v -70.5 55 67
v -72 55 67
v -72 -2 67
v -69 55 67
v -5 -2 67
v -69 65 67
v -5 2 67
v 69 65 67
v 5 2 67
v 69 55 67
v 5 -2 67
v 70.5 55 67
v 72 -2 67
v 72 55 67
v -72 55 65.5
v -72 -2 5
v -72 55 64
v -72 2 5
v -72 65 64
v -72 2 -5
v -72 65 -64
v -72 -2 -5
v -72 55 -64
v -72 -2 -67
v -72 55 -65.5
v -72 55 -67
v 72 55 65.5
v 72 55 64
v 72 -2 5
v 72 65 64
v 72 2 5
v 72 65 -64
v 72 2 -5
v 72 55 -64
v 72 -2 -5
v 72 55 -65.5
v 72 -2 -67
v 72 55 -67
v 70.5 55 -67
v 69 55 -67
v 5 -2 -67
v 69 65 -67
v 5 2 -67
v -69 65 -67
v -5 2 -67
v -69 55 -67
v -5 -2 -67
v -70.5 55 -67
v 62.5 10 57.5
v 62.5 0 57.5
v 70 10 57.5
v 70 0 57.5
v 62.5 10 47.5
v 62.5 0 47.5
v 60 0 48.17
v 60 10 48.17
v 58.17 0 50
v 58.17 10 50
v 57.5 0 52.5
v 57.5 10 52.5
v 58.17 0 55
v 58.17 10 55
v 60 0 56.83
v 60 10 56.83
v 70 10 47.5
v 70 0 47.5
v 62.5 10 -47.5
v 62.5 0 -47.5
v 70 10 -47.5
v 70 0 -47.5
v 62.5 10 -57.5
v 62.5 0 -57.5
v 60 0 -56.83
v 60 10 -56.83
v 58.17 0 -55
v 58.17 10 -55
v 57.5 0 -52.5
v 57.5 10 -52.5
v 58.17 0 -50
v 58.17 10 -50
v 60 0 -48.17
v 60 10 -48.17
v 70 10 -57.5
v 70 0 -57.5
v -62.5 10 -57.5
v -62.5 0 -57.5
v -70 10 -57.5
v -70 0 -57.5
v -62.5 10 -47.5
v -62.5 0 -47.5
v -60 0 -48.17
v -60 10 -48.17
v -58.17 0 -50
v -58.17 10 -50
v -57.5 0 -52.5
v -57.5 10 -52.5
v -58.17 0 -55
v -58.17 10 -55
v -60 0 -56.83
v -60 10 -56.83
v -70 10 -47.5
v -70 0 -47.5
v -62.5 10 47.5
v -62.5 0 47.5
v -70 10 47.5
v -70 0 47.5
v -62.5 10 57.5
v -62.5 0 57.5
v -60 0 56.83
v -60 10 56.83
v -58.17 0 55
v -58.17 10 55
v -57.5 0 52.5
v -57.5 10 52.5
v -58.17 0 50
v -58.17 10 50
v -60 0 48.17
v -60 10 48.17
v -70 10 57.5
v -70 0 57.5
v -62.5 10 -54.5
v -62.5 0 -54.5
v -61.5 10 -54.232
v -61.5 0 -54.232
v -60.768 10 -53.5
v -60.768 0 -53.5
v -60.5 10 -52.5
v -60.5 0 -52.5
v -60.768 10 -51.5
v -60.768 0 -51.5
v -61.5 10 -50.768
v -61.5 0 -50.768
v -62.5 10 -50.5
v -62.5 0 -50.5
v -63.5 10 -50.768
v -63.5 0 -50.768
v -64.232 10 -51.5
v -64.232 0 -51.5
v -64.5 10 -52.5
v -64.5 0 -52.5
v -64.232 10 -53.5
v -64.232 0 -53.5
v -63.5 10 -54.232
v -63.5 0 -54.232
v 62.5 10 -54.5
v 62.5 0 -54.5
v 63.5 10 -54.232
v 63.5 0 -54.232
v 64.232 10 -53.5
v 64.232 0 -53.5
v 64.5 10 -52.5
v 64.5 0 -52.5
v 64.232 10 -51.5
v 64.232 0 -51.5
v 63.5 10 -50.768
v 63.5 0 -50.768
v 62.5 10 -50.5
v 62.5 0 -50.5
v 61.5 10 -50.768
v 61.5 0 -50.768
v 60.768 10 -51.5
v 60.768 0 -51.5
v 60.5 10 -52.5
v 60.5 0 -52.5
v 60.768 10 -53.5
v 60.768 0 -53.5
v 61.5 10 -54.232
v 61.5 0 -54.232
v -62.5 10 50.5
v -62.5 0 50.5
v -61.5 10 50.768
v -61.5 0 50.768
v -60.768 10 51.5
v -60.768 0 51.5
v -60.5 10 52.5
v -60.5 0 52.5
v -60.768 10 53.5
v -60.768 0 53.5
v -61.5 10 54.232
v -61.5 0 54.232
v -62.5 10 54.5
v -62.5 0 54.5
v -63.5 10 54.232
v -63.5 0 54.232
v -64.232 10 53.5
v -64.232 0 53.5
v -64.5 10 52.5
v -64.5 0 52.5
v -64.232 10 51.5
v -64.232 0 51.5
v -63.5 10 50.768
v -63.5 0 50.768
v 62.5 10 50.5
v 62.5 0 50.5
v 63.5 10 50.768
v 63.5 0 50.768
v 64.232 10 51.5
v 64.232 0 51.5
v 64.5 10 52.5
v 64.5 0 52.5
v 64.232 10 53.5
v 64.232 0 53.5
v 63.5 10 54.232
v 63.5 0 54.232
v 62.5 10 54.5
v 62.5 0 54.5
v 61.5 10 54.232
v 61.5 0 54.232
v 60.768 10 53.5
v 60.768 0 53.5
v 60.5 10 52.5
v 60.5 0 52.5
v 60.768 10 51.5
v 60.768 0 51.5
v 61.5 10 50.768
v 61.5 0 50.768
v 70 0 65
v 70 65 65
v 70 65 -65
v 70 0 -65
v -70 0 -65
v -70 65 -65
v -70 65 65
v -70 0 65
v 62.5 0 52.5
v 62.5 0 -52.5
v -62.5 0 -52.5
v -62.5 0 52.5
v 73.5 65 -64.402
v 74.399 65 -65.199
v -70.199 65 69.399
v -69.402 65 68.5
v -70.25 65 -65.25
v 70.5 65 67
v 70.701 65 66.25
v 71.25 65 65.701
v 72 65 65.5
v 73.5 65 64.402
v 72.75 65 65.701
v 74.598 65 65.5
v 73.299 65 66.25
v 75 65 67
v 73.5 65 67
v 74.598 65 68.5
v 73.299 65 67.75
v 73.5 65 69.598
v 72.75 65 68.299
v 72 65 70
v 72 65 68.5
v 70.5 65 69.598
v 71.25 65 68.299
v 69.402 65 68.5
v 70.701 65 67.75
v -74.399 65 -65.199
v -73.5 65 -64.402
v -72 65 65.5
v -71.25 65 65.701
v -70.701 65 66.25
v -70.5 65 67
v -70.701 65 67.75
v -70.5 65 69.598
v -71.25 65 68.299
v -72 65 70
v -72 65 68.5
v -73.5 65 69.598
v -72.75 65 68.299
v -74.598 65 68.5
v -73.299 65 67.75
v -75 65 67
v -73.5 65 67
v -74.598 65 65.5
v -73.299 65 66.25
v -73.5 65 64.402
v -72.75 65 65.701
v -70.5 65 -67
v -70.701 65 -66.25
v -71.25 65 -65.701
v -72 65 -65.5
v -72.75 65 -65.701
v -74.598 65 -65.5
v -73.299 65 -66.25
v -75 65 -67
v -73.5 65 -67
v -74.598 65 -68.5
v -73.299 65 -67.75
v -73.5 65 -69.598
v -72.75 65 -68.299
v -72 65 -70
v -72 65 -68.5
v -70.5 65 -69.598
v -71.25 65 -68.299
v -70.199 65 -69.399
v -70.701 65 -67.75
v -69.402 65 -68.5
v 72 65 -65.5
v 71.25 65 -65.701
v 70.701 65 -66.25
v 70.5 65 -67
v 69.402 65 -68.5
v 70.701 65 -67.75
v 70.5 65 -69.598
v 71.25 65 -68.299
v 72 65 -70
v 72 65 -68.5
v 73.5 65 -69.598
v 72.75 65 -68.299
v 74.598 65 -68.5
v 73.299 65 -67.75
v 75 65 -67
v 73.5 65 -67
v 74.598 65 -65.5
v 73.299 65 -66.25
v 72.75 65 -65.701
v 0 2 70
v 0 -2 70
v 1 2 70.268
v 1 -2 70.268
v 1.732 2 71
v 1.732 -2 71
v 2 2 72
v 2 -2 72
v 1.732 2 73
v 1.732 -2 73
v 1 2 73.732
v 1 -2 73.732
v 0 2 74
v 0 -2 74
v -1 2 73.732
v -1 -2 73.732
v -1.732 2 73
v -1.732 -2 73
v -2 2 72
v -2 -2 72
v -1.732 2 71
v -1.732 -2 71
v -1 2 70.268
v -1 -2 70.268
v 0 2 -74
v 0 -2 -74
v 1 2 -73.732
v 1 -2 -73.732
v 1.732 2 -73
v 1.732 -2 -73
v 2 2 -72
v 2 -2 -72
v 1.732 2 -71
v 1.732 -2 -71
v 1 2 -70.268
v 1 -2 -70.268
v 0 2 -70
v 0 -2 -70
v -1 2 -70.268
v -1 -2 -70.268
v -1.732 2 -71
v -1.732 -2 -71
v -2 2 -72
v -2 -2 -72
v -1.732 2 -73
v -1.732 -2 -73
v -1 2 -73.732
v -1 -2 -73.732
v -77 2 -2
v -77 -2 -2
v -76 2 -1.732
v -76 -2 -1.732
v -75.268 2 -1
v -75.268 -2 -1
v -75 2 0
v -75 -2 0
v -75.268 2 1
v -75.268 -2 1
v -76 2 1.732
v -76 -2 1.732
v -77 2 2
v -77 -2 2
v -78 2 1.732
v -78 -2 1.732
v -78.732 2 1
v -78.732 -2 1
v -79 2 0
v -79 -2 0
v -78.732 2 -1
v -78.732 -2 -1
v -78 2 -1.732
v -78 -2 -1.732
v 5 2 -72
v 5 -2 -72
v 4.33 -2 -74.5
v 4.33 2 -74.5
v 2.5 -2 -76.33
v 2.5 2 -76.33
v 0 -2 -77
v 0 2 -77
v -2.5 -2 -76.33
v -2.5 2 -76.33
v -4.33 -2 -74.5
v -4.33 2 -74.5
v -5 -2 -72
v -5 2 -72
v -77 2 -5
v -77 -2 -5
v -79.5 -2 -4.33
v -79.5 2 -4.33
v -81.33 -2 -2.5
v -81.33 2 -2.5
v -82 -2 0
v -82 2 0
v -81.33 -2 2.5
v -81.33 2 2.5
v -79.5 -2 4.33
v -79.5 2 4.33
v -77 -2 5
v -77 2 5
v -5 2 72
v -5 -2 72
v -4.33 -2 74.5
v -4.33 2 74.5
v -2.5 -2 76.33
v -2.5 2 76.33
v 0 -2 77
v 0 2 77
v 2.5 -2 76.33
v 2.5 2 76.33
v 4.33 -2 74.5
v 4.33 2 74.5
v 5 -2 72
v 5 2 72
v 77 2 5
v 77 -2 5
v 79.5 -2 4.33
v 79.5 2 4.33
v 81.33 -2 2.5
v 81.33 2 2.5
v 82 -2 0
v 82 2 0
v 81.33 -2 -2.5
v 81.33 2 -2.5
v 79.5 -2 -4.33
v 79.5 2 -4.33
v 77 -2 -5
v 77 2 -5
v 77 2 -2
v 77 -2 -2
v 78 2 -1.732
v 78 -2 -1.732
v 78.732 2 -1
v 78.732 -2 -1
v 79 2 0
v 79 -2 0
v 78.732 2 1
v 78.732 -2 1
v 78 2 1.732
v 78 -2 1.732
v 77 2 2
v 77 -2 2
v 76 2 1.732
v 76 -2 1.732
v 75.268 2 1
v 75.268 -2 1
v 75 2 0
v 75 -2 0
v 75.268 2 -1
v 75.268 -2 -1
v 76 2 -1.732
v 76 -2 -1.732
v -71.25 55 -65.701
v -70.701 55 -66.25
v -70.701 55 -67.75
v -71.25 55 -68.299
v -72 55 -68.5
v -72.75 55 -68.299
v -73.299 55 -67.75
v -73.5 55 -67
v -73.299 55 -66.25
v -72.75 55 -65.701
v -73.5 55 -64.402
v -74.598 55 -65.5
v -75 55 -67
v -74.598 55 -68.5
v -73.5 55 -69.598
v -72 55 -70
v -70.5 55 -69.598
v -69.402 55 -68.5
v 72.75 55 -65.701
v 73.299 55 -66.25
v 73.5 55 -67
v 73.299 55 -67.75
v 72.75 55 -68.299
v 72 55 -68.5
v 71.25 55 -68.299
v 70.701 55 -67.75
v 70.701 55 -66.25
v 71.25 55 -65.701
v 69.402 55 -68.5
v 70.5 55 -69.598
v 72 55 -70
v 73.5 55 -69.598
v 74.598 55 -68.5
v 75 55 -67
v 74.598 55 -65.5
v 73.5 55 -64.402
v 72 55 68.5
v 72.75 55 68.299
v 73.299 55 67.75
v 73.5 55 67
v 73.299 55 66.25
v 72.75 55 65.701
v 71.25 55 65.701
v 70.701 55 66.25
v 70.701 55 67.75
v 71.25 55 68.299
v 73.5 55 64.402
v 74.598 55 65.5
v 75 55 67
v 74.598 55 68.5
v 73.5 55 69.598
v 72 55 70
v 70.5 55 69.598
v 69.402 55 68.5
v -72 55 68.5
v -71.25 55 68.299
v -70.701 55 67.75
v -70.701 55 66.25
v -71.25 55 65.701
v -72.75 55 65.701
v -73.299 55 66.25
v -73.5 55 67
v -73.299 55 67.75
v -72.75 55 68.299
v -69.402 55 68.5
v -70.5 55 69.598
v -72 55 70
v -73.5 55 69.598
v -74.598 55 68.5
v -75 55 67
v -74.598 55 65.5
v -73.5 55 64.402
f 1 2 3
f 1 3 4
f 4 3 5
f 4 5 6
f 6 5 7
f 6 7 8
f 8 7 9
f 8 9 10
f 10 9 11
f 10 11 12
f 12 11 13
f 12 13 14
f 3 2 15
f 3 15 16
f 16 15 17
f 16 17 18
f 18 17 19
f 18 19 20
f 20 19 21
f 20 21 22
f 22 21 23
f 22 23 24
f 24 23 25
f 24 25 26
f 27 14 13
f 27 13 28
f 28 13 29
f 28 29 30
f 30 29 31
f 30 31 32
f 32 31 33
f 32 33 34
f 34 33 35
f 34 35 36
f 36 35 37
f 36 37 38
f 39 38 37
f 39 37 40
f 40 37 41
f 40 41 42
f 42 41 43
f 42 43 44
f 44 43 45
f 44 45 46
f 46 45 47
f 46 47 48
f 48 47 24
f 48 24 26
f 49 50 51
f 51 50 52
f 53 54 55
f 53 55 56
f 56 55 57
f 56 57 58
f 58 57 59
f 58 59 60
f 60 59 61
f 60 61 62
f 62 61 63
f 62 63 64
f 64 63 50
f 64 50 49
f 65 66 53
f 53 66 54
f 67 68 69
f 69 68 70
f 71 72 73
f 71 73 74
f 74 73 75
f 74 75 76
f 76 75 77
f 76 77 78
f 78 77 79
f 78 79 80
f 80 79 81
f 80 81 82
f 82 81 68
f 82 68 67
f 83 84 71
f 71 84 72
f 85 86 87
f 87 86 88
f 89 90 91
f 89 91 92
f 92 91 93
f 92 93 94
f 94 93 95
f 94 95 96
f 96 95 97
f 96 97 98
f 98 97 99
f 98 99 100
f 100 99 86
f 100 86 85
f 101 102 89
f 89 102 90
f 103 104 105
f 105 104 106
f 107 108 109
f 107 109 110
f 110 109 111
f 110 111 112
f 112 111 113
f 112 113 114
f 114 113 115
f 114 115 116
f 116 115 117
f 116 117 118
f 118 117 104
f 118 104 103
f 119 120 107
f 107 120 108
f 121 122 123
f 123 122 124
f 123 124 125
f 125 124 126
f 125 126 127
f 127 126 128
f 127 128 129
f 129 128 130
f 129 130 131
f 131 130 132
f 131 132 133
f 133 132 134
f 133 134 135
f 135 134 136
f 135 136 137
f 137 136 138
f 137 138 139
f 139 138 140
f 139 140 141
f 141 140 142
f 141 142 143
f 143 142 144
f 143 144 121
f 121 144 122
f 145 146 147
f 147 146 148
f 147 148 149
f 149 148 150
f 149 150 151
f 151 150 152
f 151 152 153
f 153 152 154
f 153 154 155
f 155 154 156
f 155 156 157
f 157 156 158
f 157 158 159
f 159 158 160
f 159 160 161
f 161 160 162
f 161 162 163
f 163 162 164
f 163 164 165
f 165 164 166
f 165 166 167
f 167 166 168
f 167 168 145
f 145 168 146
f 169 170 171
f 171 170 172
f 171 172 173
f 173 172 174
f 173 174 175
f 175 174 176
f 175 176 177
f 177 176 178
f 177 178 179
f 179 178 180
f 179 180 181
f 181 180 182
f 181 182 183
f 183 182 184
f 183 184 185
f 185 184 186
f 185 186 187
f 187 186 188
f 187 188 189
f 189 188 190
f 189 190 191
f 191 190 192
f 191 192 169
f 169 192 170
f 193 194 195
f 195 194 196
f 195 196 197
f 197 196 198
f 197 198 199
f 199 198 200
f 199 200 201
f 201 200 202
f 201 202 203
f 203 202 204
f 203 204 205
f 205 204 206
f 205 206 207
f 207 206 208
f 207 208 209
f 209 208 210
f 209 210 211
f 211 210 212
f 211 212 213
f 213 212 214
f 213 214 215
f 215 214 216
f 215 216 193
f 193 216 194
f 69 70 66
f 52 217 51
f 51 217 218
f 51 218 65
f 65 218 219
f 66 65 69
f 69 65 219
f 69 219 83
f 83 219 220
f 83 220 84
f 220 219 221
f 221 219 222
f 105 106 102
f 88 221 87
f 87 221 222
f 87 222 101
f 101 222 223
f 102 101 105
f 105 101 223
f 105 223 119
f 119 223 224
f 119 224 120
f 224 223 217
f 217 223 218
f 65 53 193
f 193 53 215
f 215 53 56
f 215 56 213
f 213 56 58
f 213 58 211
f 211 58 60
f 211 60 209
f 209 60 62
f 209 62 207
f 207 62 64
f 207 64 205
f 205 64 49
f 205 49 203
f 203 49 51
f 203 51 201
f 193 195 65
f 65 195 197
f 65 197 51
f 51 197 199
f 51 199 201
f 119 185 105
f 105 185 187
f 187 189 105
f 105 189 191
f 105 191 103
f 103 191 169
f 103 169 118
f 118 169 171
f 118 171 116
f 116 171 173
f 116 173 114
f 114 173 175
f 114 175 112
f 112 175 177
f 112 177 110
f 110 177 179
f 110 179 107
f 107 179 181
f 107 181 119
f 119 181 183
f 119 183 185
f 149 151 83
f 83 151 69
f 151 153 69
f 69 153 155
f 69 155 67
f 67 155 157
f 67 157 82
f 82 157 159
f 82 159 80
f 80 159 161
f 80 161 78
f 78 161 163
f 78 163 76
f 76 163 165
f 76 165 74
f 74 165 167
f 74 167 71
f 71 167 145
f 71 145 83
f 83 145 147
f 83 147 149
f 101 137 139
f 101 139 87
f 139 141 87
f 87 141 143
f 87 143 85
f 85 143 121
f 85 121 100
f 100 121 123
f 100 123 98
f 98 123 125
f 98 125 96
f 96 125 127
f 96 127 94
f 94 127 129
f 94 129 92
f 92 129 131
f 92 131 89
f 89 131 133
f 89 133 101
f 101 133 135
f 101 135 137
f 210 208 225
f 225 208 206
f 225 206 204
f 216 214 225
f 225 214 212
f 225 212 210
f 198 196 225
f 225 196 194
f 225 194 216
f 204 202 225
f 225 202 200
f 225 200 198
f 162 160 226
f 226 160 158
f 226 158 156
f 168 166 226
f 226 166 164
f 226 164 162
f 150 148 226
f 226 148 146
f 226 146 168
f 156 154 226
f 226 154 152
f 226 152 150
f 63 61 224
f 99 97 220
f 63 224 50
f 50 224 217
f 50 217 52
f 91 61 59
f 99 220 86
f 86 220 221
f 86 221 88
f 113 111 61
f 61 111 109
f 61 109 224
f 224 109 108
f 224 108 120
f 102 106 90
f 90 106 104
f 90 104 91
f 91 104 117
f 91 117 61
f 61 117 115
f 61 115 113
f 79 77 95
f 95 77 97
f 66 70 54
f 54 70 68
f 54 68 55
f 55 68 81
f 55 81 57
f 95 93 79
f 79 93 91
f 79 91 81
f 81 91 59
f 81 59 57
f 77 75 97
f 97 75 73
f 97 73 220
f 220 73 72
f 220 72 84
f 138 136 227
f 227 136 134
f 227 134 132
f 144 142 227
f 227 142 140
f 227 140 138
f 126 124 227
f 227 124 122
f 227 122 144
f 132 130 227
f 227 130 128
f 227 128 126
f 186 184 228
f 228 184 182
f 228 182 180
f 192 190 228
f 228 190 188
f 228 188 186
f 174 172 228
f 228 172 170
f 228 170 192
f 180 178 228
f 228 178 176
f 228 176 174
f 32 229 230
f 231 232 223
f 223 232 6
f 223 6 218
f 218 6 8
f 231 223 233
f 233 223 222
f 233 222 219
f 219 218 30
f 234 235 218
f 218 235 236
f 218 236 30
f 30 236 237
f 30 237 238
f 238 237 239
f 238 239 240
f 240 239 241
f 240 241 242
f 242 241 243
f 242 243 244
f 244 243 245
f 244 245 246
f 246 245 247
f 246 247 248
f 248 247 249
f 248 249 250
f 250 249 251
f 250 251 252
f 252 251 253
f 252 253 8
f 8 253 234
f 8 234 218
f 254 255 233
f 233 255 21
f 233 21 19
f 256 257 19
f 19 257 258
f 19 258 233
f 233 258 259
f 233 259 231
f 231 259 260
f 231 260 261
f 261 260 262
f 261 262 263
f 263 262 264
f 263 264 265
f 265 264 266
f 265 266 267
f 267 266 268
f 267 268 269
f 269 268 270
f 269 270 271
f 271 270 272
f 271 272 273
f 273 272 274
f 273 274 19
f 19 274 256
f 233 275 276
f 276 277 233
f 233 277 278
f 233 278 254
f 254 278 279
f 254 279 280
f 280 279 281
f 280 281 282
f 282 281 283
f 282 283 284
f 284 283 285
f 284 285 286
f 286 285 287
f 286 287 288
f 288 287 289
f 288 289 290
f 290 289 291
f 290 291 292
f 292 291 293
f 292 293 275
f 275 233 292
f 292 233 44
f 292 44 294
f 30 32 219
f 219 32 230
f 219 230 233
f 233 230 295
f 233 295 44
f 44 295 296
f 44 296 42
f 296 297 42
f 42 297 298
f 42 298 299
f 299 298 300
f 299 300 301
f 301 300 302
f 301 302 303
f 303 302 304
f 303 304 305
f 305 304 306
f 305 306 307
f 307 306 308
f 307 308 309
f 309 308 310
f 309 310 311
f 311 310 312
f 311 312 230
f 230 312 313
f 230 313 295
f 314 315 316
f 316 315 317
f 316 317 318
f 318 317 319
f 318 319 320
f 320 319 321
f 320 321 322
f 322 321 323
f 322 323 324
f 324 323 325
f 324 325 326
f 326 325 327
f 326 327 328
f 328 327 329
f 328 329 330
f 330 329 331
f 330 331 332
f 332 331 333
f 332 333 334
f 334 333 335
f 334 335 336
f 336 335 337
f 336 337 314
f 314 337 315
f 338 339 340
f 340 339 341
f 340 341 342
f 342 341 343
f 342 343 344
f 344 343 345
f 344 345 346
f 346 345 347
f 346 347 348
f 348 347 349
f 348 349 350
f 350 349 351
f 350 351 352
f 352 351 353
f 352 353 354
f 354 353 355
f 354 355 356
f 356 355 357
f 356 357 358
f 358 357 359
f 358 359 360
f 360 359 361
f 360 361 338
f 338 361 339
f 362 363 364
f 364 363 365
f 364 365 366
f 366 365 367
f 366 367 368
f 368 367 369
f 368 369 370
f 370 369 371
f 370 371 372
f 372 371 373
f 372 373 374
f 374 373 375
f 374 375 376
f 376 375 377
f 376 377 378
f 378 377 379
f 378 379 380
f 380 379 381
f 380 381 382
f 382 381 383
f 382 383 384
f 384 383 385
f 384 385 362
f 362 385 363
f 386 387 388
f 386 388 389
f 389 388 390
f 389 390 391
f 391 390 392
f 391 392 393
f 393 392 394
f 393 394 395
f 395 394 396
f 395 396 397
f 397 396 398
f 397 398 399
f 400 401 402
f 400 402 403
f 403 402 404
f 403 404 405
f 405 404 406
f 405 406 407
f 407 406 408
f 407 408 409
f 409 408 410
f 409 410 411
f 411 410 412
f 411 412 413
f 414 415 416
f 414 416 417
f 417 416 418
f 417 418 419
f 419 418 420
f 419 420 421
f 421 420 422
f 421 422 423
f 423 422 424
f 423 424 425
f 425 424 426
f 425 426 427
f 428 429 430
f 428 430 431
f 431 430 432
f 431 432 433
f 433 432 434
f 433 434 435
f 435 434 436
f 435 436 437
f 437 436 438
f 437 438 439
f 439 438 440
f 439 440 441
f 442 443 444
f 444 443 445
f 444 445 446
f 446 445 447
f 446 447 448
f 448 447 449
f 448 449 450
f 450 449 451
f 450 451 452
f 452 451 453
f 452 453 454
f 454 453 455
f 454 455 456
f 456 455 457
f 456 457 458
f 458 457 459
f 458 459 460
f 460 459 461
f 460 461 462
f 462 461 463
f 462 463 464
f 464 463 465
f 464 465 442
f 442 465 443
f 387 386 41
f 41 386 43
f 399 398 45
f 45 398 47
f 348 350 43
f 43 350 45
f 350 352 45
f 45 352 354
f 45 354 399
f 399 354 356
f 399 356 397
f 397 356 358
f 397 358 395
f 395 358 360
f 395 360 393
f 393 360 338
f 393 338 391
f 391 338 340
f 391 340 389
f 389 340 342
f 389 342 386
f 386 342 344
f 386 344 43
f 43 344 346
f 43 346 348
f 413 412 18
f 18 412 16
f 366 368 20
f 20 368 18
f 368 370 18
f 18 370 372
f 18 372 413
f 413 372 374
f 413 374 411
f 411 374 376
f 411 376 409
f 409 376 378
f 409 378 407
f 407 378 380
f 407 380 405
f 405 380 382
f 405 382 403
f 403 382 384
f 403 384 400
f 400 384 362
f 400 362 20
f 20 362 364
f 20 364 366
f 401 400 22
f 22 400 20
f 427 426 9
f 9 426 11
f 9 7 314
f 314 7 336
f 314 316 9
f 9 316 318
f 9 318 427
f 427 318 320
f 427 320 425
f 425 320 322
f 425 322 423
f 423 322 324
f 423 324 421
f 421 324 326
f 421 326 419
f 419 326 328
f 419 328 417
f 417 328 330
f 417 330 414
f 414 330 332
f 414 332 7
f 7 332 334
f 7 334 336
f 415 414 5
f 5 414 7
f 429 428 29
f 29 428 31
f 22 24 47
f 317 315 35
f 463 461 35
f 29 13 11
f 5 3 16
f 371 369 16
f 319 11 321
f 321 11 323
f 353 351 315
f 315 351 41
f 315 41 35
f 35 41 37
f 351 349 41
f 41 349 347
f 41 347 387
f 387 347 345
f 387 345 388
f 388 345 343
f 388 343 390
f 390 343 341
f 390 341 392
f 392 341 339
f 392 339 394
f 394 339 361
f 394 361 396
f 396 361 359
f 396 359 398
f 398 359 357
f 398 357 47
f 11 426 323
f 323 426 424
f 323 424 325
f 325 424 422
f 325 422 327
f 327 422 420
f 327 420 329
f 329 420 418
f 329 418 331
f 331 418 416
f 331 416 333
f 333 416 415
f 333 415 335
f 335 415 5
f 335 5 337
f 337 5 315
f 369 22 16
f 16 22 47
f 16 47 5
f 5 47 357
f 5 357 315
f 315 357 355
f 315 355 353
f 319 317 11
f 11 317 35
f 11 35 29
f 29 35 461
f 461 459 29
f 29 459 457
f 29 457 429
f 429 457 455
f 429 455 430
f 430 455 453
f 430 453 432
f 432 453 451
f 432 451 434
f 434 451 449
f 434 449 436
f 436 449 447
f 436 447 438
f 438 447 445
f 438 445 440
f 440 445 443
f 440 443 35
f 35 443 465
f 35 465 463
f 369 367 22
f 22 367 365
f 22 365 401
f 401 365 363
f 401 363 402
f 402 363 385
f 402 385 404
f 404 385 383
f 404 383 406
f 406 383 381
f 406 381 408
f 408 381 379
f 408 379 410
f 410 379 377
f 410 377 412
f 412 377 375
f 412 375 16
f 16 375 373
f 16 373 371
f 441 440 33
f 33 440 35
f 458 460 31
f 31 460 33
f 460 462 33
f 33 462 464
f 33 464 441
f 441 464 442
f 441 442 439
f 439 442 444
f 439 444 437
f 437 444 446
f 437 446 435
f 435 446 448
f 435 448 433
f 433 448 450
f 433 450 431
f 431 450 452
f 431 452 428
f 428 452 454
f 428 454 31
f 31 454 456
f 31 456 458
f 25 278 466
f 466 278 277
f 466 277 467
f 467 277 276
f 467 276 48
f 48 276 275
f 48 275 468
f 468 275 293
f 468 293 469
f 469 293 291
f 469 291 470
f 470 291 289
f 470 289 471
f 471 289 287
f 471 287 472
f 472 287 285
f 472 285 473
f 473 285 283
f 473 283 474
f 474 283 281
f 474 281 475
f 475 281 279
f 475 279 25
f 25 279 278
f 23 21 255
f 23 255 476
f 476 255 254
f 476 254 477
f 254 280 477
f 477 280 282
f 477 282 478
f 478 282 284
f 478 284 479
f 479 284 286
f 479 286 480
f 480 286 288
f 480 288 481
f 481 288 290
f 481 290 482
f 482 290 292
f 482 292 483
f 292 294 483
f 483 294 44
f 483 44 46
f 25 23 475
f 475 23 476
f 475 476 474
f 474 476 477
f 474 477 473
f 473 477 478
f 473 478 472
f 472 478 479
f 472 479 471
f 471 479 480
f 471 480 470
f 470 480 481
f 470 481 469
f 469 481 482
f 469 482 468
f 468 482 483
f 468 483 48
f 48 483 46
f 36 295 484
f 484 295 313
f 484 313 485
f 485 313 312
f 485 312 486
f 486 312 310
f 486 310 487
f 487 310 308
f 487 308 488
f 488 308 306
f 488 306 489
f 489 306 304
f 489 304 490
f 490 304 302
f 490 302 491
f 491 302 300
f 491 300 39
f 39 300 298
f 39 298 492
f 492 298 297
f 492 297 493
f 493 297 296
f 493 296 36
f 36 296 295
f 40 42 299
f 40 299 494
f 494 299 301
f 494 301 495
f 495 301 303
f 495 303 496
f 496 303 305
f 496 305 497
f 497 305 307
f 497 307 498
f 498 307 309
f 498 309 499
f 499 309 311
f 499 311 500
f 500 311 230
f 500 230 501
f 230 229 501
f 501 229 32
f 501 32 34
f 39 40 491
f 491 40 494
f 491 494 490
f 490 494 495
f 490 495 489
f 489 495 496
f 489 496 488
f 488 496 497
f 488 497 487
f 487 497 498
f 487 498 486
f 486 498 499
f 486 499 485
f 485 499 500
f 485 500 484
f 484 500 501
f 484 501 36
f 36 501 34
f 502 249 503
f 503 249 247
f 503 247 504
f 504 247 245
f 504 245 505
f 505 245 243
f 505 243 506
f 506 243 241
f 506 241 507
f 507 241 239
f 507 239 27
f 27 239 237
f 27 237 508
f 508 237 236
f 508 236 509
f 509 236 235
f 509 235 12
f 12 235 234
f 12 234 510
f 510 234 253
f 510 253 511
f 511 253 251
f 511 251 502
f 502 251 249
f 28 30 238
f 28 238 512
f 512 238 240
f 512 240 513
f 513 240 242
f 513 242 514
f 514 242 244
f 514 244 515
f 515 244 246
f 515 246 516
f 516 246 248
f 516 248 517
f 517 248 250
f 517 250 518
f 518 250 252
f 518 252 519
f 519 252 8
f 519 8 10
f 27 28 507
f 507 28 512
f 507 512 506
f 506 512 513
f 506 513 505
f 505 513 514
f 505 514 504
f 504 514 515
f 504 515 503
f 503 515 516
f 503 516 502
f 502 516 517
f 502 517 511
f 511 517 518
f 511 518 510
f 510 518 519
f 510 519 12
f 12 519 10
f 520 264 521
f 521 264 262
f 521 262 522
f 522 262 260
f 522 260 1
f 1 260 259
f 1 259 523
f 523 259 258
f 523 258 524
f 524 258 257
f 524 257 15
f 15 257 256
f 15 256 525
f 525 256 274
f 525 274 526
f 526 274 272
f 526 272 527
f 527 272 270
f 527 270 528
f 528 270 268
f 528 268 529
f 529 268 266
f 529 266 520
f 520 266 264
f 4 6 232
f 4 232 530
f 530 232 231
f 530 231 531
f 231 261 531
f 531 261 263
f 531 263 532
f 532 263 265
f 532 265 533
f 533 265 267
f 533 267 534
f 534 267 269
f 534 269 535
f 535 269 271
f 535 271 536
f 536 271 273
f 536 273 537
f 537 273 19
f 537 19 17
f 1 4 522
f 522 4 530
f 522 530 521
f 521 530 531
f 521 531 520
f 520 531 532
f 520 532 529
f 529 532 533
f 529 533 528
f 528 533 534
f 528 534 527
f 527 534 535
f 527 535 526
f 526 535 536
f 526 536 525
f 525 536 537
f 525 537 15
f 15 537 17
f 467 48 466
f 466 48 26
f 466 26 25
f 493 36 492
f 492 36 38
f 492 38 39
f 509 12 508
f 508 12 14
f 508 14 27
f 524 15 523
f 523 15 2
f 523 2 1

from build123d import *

# Parameters (mm, degrees)
SKETCH1_W            = 144
SKETCH1_H            = 134
SKETCH1_R            = 2
BOSS_EXTRUDE1_DEPTH  = 55
SKETCH2_R            = 2
CUT_EXTRUDE1_DEPTH   = 45
SKETCH3_W            = 144
SKETCH3_H            = 134
BOSS_EXTRUDE2_DEPTH  = 2
SKETCH5_R            = 2
BOSS_EXTRUDE4_DEPTH  = 4
SKETCH6_W            = 144
SKETCH6_H            = 134
SKETCH6_W_2          = 140
SKETCH6_H_2          = 130
BOSS_EXTRUDE5_DEPTH  = 10
BOSS_EXTRUDE11_DEPTH = 10
SKETCH12_R           = 1.5
CUT_EXTRUDE3_DEPTH   = 10


with BuildPart() as part:
    # Sketch1 → Boss-Extrude1 (new body)
    with BuildSketch(Plane(origin=(0, 0, 0), x_dir=(1, 0, 0), z_dir=(0, 1, 0))):
        Rectangle(SKETCH1_W, SKETCH1_H)
        with Locations((-62.5, 52.5)):
            Circle(SKETCH1_R, mode=Mode.SUBTRACT)
        with Locations((62.5, 52.5)):
            Circle(SKETCH1_R, mode=Mode.SUBTRACT)
        with Locations((-62.5, -52.5)):
            Circle(SKETCH1_R, mode=Mode.SUBTRACT)
        with Locations((62.5, -52.5)):
            Circle(SKETCH1_R, mode=Mode.SUBTRACT)
        with BuildLine():
            Line((-70, 65), (70, 65))
            Line((70, 65), (70, 57.5))
            Line((70, 57.5), (62.5, 57.5))
            ThreePointArc((62.5, 57.5), (57.5, 52.5), (62.5, 47.5))
            Line((62.5, 47.5), (70, 47.5))
            Line((70, 47.5), (70, -47.5))
            Line((70, -47.5), (62.5, -47.5))
            ThreePointArc((62.5, -47.5), (57.5, -52.5), (62.5, -57.5))
            Line((62.5, -57.5), (70, -57.5))
            Line((70, -57.5), (70, -65))
            Line((70, -65), (-70, -65))
            Line((-70, -65), (-70, -57.5))
            Line((-70, -57.5), (-62.5, -57.5))
            ThreePointArc((-62.5, -57.5), (-57.5, -52.5), (-62.5, -47.5))
            Line((-62.5, -47.5), (-70, -47.5))
            Line((-70, -47.5), (-70, 47.5))
            Line((-70, 47.5), (-62.5, 47.5))
            ThreePointArc((-62.5, 47.5), (-57.5, 52.5), (-62.5, 57.5))
            Line((-62.5, 57.5), (-70, 57.5))
            Line((-70, 57.5), (-70, 65))
        make_face(mode=Mode.SUBTRACT)
    extrude(amount=BOSS_EXTRUDE1_DEPTH)

    # Sketch2 → Cut-Extrude1 (cut)
    with BuildSketch(Plane(origin=(0, 55, 0), x_dir=(1, 0, 0), z_dir=(0, 1, 0))):
        with BuildLine():
            Line((-70, -47.5), (-62.5, -47.5))
            ThreePointArc((-62.5, -47.5), (-57.5, -52.5), (-62.5, -57.5))
            Line((-62.5, -57.5), (-70, -57.5))
            Line((-70, -57.5), (-70, -47.5))
        make_face()
        with Locations((-62.5, -52.5)):
            Circle(SKETCH2_R, mode=Mode.SUBTRACT)
        with BuildLine():
            Line((70, -57.5), (62.5, -57.5))
            ThreePointArc((62.5, -57.5), (57.5, -52.5), (62.5, -47.5))
            Line((62.5, -47.5), (70, -47.5))
            Line((70, -47.5), (70, -57.5))
        make_face()
        with Locations((62.5, -52.5)):
            Circle(SKETCH2_R, mode=Mode.SUBTRACT)
        with BuildLine():
            Line((70, 47.5), (62.5, 47.5))
            ThreePointArc((62.5, 47.5), (57.5, 52.5), (62.5, 57.5))
            Line((62.5, 57.5), (70, 57.5))
            Line((70, 57.5), (70, 47.5))
        make_face()
        with Locations((62.5, 52.5)):
            Circle(SKETCH2_R, mode=Mode.SUBTRACT)
        with BuildLine():
            Line((-62.5, 47.5), (-70, 47.5))
            Line((-70, 47.5), (-70, 57.5))
            Line((-70, 57.5), (-62.5, 57.5))
            ThreePointArc((-62.5, 57.5), (-57.5, 52.5), (-62.5, 47.5))
        make_face()
        with Locations((-62.5, 52.5)):
            Circle(SKETCH2_R, mode=Mode.SUBTRACT)
    extrude(amount=-CUT_EXTRUDE1_DEPTH, mode=Mode.SUBTRACT)

    # Sketch3 → Boss-Extrude2 (add)
    with BuildSketch(Plane.XZ):
        Rectangle(SKETCH3_W, SKETCH3_H)
    extrude(amount=BOSS_EXTRUDE2_DEPTH)

    # Sketch5 → Boss-Extrude4 (add)
    with BuildSketch(Plane.XZ.offset(2)):
        with BuildLine():
            Line((-70, -5), (-70, 5))
            Line((-70, 5), (-77, 5))
            ThreePointArc((-77, 5), (-82, 0), (-77, -5))
            Line((-77, -5), (-70, -5))
        make_face()
        with Locations((-77, 0)):
            Circle(SKETCH5_R, mode=Mode.SUBTRACT)
        with BuildLine():
            Line((5, -72), (5, -65))
            Line((5, -65), (-5, -65))
            Line((-5, -65), (-5, -72))
            ThreePointArc((-5, -72), (0, -77), (5, -72))
        make_face()
        with Locations((0, -72)):
            Circle(SKETCH5_R, mode=Mode.SUBTRACT)
        with BuildLine():
            Line((70, -5), (70, 5))
            Line((70, 5), (77, 5))
            ThreePointArc((77, 5), (82, 0), (77, -5))
            Line((77, -5), (70, -5))
        make_face()
        with Locations((77, 0)):
            Circle(SKETCH5_R, mode=Mode.SUBTRACT)
        with BuildLine():
            Line((-5, 65), (5, 65))
            Line((5, 65), (5, 72))
            ThreePointArc((5, 72), (0, 77), (-5, 72))
            Line((-5, 72), (-5, 65))
        make_face()
        with Locations((0, 72)):
            Circle(SKETCH5_R, mode=Mode.SUBTRACT)
    extrude(amount=-BOSS_EXTRUDE4_DEPTH)

    # Sketch6 → Boss-Extrude5 (add)
    with BuildSketch(Plane(origin=(0, 55, 0), x_dir=(1, 0, 0), z_dir=(0, 1, 0))):
        Rectangle(SKETCH6_W, SKETCH6_H)
        Rectangle(SKETCH6_W_2, SKETCH6_H_2, mode=Mode.SUBTRACT)
    extrude(amount=BOSS_EXTRUDE5_DEPTH)

    # Sketch11 → Boss-Extrude11 (add)
    with BuildSketch(Plane(origin=(0, 65, 0), x_dir=(1, 0, 0), z_dir=(0, 1, 0))):
        with BuildLine():
            ThreePointArc((-69, 67), (-74.121320344, 69.121320344), (-72, 64))
            Line((-72, 64), (-72, 65.5))
            ThreePointArc((-72, 65.5), (-73.060660172, 68.060660172), (-70.5, 67))
            Line((-70.5, 67), (-69, 67))
        make_face()
        with BuildLine():
            Line((72, 65.5), (72, 64))
            ThreePointArc((72, 64), (74.121320344, 69.121320344), (69, 67))
            Line((69, 67), (70.5, 67))
            ThreePointArc((70.5, 67), (72, 68.5), (73.5, 67))
            ThreePointArc((73.5, 67), (73.060660172, 65.939339828), (72, 65.5))
        make_face()
        with BuildLine():
            Line((70.5, -67), (69, -67))
            ThreePointArc((69, -67), (74.121320344, -69.121320344), (72, -64))
            Line((72, -64), (72, -65.5))
            ThreePointArc((72, -65.5), (73.060660172, -65.939339828), (73.5, -67))
            ThreePointArc((73.5, -67), (72, -68.5), (70.5, -67))
        make_face()
        with BuildLine():
            Line((-69, -67), (-70.5, -67))
            ThreePointArc((-70.5, -67), (-73.060660172, -68.060660172), (-72, -65.5))
            Line((-72, -65.5), (-72, -64))
            ThreePointArc((-72, -64), (-74.121320344, -69.121320344), (-69, -67))
        make_face()
    extrude(amount=-BOSS_EXTRUDE11_DEPTH)

    # Sketch12 → Cut-Extrude3 (cut)
    with BuildSketch(Plane(origin=(0, 65, 0), x_dir=(1, 0, 0), z_dir=(0, 1, 0))):
        with Locations((-72, 67)):
            Circle(SKETCH12_R)
        with Locations((72, 67)):
            Circle(SKETCH12_R)
        with Locations((72, -67)):
            Circle(SKETCH12_R)
        with Locations((-72, -67)):
            Circle(SKETCH12_R)
    extrude(amount=-CUT_EXTRUDE3_DEPTH, mode=Mode.SUBTRACT)


solid = part.part
